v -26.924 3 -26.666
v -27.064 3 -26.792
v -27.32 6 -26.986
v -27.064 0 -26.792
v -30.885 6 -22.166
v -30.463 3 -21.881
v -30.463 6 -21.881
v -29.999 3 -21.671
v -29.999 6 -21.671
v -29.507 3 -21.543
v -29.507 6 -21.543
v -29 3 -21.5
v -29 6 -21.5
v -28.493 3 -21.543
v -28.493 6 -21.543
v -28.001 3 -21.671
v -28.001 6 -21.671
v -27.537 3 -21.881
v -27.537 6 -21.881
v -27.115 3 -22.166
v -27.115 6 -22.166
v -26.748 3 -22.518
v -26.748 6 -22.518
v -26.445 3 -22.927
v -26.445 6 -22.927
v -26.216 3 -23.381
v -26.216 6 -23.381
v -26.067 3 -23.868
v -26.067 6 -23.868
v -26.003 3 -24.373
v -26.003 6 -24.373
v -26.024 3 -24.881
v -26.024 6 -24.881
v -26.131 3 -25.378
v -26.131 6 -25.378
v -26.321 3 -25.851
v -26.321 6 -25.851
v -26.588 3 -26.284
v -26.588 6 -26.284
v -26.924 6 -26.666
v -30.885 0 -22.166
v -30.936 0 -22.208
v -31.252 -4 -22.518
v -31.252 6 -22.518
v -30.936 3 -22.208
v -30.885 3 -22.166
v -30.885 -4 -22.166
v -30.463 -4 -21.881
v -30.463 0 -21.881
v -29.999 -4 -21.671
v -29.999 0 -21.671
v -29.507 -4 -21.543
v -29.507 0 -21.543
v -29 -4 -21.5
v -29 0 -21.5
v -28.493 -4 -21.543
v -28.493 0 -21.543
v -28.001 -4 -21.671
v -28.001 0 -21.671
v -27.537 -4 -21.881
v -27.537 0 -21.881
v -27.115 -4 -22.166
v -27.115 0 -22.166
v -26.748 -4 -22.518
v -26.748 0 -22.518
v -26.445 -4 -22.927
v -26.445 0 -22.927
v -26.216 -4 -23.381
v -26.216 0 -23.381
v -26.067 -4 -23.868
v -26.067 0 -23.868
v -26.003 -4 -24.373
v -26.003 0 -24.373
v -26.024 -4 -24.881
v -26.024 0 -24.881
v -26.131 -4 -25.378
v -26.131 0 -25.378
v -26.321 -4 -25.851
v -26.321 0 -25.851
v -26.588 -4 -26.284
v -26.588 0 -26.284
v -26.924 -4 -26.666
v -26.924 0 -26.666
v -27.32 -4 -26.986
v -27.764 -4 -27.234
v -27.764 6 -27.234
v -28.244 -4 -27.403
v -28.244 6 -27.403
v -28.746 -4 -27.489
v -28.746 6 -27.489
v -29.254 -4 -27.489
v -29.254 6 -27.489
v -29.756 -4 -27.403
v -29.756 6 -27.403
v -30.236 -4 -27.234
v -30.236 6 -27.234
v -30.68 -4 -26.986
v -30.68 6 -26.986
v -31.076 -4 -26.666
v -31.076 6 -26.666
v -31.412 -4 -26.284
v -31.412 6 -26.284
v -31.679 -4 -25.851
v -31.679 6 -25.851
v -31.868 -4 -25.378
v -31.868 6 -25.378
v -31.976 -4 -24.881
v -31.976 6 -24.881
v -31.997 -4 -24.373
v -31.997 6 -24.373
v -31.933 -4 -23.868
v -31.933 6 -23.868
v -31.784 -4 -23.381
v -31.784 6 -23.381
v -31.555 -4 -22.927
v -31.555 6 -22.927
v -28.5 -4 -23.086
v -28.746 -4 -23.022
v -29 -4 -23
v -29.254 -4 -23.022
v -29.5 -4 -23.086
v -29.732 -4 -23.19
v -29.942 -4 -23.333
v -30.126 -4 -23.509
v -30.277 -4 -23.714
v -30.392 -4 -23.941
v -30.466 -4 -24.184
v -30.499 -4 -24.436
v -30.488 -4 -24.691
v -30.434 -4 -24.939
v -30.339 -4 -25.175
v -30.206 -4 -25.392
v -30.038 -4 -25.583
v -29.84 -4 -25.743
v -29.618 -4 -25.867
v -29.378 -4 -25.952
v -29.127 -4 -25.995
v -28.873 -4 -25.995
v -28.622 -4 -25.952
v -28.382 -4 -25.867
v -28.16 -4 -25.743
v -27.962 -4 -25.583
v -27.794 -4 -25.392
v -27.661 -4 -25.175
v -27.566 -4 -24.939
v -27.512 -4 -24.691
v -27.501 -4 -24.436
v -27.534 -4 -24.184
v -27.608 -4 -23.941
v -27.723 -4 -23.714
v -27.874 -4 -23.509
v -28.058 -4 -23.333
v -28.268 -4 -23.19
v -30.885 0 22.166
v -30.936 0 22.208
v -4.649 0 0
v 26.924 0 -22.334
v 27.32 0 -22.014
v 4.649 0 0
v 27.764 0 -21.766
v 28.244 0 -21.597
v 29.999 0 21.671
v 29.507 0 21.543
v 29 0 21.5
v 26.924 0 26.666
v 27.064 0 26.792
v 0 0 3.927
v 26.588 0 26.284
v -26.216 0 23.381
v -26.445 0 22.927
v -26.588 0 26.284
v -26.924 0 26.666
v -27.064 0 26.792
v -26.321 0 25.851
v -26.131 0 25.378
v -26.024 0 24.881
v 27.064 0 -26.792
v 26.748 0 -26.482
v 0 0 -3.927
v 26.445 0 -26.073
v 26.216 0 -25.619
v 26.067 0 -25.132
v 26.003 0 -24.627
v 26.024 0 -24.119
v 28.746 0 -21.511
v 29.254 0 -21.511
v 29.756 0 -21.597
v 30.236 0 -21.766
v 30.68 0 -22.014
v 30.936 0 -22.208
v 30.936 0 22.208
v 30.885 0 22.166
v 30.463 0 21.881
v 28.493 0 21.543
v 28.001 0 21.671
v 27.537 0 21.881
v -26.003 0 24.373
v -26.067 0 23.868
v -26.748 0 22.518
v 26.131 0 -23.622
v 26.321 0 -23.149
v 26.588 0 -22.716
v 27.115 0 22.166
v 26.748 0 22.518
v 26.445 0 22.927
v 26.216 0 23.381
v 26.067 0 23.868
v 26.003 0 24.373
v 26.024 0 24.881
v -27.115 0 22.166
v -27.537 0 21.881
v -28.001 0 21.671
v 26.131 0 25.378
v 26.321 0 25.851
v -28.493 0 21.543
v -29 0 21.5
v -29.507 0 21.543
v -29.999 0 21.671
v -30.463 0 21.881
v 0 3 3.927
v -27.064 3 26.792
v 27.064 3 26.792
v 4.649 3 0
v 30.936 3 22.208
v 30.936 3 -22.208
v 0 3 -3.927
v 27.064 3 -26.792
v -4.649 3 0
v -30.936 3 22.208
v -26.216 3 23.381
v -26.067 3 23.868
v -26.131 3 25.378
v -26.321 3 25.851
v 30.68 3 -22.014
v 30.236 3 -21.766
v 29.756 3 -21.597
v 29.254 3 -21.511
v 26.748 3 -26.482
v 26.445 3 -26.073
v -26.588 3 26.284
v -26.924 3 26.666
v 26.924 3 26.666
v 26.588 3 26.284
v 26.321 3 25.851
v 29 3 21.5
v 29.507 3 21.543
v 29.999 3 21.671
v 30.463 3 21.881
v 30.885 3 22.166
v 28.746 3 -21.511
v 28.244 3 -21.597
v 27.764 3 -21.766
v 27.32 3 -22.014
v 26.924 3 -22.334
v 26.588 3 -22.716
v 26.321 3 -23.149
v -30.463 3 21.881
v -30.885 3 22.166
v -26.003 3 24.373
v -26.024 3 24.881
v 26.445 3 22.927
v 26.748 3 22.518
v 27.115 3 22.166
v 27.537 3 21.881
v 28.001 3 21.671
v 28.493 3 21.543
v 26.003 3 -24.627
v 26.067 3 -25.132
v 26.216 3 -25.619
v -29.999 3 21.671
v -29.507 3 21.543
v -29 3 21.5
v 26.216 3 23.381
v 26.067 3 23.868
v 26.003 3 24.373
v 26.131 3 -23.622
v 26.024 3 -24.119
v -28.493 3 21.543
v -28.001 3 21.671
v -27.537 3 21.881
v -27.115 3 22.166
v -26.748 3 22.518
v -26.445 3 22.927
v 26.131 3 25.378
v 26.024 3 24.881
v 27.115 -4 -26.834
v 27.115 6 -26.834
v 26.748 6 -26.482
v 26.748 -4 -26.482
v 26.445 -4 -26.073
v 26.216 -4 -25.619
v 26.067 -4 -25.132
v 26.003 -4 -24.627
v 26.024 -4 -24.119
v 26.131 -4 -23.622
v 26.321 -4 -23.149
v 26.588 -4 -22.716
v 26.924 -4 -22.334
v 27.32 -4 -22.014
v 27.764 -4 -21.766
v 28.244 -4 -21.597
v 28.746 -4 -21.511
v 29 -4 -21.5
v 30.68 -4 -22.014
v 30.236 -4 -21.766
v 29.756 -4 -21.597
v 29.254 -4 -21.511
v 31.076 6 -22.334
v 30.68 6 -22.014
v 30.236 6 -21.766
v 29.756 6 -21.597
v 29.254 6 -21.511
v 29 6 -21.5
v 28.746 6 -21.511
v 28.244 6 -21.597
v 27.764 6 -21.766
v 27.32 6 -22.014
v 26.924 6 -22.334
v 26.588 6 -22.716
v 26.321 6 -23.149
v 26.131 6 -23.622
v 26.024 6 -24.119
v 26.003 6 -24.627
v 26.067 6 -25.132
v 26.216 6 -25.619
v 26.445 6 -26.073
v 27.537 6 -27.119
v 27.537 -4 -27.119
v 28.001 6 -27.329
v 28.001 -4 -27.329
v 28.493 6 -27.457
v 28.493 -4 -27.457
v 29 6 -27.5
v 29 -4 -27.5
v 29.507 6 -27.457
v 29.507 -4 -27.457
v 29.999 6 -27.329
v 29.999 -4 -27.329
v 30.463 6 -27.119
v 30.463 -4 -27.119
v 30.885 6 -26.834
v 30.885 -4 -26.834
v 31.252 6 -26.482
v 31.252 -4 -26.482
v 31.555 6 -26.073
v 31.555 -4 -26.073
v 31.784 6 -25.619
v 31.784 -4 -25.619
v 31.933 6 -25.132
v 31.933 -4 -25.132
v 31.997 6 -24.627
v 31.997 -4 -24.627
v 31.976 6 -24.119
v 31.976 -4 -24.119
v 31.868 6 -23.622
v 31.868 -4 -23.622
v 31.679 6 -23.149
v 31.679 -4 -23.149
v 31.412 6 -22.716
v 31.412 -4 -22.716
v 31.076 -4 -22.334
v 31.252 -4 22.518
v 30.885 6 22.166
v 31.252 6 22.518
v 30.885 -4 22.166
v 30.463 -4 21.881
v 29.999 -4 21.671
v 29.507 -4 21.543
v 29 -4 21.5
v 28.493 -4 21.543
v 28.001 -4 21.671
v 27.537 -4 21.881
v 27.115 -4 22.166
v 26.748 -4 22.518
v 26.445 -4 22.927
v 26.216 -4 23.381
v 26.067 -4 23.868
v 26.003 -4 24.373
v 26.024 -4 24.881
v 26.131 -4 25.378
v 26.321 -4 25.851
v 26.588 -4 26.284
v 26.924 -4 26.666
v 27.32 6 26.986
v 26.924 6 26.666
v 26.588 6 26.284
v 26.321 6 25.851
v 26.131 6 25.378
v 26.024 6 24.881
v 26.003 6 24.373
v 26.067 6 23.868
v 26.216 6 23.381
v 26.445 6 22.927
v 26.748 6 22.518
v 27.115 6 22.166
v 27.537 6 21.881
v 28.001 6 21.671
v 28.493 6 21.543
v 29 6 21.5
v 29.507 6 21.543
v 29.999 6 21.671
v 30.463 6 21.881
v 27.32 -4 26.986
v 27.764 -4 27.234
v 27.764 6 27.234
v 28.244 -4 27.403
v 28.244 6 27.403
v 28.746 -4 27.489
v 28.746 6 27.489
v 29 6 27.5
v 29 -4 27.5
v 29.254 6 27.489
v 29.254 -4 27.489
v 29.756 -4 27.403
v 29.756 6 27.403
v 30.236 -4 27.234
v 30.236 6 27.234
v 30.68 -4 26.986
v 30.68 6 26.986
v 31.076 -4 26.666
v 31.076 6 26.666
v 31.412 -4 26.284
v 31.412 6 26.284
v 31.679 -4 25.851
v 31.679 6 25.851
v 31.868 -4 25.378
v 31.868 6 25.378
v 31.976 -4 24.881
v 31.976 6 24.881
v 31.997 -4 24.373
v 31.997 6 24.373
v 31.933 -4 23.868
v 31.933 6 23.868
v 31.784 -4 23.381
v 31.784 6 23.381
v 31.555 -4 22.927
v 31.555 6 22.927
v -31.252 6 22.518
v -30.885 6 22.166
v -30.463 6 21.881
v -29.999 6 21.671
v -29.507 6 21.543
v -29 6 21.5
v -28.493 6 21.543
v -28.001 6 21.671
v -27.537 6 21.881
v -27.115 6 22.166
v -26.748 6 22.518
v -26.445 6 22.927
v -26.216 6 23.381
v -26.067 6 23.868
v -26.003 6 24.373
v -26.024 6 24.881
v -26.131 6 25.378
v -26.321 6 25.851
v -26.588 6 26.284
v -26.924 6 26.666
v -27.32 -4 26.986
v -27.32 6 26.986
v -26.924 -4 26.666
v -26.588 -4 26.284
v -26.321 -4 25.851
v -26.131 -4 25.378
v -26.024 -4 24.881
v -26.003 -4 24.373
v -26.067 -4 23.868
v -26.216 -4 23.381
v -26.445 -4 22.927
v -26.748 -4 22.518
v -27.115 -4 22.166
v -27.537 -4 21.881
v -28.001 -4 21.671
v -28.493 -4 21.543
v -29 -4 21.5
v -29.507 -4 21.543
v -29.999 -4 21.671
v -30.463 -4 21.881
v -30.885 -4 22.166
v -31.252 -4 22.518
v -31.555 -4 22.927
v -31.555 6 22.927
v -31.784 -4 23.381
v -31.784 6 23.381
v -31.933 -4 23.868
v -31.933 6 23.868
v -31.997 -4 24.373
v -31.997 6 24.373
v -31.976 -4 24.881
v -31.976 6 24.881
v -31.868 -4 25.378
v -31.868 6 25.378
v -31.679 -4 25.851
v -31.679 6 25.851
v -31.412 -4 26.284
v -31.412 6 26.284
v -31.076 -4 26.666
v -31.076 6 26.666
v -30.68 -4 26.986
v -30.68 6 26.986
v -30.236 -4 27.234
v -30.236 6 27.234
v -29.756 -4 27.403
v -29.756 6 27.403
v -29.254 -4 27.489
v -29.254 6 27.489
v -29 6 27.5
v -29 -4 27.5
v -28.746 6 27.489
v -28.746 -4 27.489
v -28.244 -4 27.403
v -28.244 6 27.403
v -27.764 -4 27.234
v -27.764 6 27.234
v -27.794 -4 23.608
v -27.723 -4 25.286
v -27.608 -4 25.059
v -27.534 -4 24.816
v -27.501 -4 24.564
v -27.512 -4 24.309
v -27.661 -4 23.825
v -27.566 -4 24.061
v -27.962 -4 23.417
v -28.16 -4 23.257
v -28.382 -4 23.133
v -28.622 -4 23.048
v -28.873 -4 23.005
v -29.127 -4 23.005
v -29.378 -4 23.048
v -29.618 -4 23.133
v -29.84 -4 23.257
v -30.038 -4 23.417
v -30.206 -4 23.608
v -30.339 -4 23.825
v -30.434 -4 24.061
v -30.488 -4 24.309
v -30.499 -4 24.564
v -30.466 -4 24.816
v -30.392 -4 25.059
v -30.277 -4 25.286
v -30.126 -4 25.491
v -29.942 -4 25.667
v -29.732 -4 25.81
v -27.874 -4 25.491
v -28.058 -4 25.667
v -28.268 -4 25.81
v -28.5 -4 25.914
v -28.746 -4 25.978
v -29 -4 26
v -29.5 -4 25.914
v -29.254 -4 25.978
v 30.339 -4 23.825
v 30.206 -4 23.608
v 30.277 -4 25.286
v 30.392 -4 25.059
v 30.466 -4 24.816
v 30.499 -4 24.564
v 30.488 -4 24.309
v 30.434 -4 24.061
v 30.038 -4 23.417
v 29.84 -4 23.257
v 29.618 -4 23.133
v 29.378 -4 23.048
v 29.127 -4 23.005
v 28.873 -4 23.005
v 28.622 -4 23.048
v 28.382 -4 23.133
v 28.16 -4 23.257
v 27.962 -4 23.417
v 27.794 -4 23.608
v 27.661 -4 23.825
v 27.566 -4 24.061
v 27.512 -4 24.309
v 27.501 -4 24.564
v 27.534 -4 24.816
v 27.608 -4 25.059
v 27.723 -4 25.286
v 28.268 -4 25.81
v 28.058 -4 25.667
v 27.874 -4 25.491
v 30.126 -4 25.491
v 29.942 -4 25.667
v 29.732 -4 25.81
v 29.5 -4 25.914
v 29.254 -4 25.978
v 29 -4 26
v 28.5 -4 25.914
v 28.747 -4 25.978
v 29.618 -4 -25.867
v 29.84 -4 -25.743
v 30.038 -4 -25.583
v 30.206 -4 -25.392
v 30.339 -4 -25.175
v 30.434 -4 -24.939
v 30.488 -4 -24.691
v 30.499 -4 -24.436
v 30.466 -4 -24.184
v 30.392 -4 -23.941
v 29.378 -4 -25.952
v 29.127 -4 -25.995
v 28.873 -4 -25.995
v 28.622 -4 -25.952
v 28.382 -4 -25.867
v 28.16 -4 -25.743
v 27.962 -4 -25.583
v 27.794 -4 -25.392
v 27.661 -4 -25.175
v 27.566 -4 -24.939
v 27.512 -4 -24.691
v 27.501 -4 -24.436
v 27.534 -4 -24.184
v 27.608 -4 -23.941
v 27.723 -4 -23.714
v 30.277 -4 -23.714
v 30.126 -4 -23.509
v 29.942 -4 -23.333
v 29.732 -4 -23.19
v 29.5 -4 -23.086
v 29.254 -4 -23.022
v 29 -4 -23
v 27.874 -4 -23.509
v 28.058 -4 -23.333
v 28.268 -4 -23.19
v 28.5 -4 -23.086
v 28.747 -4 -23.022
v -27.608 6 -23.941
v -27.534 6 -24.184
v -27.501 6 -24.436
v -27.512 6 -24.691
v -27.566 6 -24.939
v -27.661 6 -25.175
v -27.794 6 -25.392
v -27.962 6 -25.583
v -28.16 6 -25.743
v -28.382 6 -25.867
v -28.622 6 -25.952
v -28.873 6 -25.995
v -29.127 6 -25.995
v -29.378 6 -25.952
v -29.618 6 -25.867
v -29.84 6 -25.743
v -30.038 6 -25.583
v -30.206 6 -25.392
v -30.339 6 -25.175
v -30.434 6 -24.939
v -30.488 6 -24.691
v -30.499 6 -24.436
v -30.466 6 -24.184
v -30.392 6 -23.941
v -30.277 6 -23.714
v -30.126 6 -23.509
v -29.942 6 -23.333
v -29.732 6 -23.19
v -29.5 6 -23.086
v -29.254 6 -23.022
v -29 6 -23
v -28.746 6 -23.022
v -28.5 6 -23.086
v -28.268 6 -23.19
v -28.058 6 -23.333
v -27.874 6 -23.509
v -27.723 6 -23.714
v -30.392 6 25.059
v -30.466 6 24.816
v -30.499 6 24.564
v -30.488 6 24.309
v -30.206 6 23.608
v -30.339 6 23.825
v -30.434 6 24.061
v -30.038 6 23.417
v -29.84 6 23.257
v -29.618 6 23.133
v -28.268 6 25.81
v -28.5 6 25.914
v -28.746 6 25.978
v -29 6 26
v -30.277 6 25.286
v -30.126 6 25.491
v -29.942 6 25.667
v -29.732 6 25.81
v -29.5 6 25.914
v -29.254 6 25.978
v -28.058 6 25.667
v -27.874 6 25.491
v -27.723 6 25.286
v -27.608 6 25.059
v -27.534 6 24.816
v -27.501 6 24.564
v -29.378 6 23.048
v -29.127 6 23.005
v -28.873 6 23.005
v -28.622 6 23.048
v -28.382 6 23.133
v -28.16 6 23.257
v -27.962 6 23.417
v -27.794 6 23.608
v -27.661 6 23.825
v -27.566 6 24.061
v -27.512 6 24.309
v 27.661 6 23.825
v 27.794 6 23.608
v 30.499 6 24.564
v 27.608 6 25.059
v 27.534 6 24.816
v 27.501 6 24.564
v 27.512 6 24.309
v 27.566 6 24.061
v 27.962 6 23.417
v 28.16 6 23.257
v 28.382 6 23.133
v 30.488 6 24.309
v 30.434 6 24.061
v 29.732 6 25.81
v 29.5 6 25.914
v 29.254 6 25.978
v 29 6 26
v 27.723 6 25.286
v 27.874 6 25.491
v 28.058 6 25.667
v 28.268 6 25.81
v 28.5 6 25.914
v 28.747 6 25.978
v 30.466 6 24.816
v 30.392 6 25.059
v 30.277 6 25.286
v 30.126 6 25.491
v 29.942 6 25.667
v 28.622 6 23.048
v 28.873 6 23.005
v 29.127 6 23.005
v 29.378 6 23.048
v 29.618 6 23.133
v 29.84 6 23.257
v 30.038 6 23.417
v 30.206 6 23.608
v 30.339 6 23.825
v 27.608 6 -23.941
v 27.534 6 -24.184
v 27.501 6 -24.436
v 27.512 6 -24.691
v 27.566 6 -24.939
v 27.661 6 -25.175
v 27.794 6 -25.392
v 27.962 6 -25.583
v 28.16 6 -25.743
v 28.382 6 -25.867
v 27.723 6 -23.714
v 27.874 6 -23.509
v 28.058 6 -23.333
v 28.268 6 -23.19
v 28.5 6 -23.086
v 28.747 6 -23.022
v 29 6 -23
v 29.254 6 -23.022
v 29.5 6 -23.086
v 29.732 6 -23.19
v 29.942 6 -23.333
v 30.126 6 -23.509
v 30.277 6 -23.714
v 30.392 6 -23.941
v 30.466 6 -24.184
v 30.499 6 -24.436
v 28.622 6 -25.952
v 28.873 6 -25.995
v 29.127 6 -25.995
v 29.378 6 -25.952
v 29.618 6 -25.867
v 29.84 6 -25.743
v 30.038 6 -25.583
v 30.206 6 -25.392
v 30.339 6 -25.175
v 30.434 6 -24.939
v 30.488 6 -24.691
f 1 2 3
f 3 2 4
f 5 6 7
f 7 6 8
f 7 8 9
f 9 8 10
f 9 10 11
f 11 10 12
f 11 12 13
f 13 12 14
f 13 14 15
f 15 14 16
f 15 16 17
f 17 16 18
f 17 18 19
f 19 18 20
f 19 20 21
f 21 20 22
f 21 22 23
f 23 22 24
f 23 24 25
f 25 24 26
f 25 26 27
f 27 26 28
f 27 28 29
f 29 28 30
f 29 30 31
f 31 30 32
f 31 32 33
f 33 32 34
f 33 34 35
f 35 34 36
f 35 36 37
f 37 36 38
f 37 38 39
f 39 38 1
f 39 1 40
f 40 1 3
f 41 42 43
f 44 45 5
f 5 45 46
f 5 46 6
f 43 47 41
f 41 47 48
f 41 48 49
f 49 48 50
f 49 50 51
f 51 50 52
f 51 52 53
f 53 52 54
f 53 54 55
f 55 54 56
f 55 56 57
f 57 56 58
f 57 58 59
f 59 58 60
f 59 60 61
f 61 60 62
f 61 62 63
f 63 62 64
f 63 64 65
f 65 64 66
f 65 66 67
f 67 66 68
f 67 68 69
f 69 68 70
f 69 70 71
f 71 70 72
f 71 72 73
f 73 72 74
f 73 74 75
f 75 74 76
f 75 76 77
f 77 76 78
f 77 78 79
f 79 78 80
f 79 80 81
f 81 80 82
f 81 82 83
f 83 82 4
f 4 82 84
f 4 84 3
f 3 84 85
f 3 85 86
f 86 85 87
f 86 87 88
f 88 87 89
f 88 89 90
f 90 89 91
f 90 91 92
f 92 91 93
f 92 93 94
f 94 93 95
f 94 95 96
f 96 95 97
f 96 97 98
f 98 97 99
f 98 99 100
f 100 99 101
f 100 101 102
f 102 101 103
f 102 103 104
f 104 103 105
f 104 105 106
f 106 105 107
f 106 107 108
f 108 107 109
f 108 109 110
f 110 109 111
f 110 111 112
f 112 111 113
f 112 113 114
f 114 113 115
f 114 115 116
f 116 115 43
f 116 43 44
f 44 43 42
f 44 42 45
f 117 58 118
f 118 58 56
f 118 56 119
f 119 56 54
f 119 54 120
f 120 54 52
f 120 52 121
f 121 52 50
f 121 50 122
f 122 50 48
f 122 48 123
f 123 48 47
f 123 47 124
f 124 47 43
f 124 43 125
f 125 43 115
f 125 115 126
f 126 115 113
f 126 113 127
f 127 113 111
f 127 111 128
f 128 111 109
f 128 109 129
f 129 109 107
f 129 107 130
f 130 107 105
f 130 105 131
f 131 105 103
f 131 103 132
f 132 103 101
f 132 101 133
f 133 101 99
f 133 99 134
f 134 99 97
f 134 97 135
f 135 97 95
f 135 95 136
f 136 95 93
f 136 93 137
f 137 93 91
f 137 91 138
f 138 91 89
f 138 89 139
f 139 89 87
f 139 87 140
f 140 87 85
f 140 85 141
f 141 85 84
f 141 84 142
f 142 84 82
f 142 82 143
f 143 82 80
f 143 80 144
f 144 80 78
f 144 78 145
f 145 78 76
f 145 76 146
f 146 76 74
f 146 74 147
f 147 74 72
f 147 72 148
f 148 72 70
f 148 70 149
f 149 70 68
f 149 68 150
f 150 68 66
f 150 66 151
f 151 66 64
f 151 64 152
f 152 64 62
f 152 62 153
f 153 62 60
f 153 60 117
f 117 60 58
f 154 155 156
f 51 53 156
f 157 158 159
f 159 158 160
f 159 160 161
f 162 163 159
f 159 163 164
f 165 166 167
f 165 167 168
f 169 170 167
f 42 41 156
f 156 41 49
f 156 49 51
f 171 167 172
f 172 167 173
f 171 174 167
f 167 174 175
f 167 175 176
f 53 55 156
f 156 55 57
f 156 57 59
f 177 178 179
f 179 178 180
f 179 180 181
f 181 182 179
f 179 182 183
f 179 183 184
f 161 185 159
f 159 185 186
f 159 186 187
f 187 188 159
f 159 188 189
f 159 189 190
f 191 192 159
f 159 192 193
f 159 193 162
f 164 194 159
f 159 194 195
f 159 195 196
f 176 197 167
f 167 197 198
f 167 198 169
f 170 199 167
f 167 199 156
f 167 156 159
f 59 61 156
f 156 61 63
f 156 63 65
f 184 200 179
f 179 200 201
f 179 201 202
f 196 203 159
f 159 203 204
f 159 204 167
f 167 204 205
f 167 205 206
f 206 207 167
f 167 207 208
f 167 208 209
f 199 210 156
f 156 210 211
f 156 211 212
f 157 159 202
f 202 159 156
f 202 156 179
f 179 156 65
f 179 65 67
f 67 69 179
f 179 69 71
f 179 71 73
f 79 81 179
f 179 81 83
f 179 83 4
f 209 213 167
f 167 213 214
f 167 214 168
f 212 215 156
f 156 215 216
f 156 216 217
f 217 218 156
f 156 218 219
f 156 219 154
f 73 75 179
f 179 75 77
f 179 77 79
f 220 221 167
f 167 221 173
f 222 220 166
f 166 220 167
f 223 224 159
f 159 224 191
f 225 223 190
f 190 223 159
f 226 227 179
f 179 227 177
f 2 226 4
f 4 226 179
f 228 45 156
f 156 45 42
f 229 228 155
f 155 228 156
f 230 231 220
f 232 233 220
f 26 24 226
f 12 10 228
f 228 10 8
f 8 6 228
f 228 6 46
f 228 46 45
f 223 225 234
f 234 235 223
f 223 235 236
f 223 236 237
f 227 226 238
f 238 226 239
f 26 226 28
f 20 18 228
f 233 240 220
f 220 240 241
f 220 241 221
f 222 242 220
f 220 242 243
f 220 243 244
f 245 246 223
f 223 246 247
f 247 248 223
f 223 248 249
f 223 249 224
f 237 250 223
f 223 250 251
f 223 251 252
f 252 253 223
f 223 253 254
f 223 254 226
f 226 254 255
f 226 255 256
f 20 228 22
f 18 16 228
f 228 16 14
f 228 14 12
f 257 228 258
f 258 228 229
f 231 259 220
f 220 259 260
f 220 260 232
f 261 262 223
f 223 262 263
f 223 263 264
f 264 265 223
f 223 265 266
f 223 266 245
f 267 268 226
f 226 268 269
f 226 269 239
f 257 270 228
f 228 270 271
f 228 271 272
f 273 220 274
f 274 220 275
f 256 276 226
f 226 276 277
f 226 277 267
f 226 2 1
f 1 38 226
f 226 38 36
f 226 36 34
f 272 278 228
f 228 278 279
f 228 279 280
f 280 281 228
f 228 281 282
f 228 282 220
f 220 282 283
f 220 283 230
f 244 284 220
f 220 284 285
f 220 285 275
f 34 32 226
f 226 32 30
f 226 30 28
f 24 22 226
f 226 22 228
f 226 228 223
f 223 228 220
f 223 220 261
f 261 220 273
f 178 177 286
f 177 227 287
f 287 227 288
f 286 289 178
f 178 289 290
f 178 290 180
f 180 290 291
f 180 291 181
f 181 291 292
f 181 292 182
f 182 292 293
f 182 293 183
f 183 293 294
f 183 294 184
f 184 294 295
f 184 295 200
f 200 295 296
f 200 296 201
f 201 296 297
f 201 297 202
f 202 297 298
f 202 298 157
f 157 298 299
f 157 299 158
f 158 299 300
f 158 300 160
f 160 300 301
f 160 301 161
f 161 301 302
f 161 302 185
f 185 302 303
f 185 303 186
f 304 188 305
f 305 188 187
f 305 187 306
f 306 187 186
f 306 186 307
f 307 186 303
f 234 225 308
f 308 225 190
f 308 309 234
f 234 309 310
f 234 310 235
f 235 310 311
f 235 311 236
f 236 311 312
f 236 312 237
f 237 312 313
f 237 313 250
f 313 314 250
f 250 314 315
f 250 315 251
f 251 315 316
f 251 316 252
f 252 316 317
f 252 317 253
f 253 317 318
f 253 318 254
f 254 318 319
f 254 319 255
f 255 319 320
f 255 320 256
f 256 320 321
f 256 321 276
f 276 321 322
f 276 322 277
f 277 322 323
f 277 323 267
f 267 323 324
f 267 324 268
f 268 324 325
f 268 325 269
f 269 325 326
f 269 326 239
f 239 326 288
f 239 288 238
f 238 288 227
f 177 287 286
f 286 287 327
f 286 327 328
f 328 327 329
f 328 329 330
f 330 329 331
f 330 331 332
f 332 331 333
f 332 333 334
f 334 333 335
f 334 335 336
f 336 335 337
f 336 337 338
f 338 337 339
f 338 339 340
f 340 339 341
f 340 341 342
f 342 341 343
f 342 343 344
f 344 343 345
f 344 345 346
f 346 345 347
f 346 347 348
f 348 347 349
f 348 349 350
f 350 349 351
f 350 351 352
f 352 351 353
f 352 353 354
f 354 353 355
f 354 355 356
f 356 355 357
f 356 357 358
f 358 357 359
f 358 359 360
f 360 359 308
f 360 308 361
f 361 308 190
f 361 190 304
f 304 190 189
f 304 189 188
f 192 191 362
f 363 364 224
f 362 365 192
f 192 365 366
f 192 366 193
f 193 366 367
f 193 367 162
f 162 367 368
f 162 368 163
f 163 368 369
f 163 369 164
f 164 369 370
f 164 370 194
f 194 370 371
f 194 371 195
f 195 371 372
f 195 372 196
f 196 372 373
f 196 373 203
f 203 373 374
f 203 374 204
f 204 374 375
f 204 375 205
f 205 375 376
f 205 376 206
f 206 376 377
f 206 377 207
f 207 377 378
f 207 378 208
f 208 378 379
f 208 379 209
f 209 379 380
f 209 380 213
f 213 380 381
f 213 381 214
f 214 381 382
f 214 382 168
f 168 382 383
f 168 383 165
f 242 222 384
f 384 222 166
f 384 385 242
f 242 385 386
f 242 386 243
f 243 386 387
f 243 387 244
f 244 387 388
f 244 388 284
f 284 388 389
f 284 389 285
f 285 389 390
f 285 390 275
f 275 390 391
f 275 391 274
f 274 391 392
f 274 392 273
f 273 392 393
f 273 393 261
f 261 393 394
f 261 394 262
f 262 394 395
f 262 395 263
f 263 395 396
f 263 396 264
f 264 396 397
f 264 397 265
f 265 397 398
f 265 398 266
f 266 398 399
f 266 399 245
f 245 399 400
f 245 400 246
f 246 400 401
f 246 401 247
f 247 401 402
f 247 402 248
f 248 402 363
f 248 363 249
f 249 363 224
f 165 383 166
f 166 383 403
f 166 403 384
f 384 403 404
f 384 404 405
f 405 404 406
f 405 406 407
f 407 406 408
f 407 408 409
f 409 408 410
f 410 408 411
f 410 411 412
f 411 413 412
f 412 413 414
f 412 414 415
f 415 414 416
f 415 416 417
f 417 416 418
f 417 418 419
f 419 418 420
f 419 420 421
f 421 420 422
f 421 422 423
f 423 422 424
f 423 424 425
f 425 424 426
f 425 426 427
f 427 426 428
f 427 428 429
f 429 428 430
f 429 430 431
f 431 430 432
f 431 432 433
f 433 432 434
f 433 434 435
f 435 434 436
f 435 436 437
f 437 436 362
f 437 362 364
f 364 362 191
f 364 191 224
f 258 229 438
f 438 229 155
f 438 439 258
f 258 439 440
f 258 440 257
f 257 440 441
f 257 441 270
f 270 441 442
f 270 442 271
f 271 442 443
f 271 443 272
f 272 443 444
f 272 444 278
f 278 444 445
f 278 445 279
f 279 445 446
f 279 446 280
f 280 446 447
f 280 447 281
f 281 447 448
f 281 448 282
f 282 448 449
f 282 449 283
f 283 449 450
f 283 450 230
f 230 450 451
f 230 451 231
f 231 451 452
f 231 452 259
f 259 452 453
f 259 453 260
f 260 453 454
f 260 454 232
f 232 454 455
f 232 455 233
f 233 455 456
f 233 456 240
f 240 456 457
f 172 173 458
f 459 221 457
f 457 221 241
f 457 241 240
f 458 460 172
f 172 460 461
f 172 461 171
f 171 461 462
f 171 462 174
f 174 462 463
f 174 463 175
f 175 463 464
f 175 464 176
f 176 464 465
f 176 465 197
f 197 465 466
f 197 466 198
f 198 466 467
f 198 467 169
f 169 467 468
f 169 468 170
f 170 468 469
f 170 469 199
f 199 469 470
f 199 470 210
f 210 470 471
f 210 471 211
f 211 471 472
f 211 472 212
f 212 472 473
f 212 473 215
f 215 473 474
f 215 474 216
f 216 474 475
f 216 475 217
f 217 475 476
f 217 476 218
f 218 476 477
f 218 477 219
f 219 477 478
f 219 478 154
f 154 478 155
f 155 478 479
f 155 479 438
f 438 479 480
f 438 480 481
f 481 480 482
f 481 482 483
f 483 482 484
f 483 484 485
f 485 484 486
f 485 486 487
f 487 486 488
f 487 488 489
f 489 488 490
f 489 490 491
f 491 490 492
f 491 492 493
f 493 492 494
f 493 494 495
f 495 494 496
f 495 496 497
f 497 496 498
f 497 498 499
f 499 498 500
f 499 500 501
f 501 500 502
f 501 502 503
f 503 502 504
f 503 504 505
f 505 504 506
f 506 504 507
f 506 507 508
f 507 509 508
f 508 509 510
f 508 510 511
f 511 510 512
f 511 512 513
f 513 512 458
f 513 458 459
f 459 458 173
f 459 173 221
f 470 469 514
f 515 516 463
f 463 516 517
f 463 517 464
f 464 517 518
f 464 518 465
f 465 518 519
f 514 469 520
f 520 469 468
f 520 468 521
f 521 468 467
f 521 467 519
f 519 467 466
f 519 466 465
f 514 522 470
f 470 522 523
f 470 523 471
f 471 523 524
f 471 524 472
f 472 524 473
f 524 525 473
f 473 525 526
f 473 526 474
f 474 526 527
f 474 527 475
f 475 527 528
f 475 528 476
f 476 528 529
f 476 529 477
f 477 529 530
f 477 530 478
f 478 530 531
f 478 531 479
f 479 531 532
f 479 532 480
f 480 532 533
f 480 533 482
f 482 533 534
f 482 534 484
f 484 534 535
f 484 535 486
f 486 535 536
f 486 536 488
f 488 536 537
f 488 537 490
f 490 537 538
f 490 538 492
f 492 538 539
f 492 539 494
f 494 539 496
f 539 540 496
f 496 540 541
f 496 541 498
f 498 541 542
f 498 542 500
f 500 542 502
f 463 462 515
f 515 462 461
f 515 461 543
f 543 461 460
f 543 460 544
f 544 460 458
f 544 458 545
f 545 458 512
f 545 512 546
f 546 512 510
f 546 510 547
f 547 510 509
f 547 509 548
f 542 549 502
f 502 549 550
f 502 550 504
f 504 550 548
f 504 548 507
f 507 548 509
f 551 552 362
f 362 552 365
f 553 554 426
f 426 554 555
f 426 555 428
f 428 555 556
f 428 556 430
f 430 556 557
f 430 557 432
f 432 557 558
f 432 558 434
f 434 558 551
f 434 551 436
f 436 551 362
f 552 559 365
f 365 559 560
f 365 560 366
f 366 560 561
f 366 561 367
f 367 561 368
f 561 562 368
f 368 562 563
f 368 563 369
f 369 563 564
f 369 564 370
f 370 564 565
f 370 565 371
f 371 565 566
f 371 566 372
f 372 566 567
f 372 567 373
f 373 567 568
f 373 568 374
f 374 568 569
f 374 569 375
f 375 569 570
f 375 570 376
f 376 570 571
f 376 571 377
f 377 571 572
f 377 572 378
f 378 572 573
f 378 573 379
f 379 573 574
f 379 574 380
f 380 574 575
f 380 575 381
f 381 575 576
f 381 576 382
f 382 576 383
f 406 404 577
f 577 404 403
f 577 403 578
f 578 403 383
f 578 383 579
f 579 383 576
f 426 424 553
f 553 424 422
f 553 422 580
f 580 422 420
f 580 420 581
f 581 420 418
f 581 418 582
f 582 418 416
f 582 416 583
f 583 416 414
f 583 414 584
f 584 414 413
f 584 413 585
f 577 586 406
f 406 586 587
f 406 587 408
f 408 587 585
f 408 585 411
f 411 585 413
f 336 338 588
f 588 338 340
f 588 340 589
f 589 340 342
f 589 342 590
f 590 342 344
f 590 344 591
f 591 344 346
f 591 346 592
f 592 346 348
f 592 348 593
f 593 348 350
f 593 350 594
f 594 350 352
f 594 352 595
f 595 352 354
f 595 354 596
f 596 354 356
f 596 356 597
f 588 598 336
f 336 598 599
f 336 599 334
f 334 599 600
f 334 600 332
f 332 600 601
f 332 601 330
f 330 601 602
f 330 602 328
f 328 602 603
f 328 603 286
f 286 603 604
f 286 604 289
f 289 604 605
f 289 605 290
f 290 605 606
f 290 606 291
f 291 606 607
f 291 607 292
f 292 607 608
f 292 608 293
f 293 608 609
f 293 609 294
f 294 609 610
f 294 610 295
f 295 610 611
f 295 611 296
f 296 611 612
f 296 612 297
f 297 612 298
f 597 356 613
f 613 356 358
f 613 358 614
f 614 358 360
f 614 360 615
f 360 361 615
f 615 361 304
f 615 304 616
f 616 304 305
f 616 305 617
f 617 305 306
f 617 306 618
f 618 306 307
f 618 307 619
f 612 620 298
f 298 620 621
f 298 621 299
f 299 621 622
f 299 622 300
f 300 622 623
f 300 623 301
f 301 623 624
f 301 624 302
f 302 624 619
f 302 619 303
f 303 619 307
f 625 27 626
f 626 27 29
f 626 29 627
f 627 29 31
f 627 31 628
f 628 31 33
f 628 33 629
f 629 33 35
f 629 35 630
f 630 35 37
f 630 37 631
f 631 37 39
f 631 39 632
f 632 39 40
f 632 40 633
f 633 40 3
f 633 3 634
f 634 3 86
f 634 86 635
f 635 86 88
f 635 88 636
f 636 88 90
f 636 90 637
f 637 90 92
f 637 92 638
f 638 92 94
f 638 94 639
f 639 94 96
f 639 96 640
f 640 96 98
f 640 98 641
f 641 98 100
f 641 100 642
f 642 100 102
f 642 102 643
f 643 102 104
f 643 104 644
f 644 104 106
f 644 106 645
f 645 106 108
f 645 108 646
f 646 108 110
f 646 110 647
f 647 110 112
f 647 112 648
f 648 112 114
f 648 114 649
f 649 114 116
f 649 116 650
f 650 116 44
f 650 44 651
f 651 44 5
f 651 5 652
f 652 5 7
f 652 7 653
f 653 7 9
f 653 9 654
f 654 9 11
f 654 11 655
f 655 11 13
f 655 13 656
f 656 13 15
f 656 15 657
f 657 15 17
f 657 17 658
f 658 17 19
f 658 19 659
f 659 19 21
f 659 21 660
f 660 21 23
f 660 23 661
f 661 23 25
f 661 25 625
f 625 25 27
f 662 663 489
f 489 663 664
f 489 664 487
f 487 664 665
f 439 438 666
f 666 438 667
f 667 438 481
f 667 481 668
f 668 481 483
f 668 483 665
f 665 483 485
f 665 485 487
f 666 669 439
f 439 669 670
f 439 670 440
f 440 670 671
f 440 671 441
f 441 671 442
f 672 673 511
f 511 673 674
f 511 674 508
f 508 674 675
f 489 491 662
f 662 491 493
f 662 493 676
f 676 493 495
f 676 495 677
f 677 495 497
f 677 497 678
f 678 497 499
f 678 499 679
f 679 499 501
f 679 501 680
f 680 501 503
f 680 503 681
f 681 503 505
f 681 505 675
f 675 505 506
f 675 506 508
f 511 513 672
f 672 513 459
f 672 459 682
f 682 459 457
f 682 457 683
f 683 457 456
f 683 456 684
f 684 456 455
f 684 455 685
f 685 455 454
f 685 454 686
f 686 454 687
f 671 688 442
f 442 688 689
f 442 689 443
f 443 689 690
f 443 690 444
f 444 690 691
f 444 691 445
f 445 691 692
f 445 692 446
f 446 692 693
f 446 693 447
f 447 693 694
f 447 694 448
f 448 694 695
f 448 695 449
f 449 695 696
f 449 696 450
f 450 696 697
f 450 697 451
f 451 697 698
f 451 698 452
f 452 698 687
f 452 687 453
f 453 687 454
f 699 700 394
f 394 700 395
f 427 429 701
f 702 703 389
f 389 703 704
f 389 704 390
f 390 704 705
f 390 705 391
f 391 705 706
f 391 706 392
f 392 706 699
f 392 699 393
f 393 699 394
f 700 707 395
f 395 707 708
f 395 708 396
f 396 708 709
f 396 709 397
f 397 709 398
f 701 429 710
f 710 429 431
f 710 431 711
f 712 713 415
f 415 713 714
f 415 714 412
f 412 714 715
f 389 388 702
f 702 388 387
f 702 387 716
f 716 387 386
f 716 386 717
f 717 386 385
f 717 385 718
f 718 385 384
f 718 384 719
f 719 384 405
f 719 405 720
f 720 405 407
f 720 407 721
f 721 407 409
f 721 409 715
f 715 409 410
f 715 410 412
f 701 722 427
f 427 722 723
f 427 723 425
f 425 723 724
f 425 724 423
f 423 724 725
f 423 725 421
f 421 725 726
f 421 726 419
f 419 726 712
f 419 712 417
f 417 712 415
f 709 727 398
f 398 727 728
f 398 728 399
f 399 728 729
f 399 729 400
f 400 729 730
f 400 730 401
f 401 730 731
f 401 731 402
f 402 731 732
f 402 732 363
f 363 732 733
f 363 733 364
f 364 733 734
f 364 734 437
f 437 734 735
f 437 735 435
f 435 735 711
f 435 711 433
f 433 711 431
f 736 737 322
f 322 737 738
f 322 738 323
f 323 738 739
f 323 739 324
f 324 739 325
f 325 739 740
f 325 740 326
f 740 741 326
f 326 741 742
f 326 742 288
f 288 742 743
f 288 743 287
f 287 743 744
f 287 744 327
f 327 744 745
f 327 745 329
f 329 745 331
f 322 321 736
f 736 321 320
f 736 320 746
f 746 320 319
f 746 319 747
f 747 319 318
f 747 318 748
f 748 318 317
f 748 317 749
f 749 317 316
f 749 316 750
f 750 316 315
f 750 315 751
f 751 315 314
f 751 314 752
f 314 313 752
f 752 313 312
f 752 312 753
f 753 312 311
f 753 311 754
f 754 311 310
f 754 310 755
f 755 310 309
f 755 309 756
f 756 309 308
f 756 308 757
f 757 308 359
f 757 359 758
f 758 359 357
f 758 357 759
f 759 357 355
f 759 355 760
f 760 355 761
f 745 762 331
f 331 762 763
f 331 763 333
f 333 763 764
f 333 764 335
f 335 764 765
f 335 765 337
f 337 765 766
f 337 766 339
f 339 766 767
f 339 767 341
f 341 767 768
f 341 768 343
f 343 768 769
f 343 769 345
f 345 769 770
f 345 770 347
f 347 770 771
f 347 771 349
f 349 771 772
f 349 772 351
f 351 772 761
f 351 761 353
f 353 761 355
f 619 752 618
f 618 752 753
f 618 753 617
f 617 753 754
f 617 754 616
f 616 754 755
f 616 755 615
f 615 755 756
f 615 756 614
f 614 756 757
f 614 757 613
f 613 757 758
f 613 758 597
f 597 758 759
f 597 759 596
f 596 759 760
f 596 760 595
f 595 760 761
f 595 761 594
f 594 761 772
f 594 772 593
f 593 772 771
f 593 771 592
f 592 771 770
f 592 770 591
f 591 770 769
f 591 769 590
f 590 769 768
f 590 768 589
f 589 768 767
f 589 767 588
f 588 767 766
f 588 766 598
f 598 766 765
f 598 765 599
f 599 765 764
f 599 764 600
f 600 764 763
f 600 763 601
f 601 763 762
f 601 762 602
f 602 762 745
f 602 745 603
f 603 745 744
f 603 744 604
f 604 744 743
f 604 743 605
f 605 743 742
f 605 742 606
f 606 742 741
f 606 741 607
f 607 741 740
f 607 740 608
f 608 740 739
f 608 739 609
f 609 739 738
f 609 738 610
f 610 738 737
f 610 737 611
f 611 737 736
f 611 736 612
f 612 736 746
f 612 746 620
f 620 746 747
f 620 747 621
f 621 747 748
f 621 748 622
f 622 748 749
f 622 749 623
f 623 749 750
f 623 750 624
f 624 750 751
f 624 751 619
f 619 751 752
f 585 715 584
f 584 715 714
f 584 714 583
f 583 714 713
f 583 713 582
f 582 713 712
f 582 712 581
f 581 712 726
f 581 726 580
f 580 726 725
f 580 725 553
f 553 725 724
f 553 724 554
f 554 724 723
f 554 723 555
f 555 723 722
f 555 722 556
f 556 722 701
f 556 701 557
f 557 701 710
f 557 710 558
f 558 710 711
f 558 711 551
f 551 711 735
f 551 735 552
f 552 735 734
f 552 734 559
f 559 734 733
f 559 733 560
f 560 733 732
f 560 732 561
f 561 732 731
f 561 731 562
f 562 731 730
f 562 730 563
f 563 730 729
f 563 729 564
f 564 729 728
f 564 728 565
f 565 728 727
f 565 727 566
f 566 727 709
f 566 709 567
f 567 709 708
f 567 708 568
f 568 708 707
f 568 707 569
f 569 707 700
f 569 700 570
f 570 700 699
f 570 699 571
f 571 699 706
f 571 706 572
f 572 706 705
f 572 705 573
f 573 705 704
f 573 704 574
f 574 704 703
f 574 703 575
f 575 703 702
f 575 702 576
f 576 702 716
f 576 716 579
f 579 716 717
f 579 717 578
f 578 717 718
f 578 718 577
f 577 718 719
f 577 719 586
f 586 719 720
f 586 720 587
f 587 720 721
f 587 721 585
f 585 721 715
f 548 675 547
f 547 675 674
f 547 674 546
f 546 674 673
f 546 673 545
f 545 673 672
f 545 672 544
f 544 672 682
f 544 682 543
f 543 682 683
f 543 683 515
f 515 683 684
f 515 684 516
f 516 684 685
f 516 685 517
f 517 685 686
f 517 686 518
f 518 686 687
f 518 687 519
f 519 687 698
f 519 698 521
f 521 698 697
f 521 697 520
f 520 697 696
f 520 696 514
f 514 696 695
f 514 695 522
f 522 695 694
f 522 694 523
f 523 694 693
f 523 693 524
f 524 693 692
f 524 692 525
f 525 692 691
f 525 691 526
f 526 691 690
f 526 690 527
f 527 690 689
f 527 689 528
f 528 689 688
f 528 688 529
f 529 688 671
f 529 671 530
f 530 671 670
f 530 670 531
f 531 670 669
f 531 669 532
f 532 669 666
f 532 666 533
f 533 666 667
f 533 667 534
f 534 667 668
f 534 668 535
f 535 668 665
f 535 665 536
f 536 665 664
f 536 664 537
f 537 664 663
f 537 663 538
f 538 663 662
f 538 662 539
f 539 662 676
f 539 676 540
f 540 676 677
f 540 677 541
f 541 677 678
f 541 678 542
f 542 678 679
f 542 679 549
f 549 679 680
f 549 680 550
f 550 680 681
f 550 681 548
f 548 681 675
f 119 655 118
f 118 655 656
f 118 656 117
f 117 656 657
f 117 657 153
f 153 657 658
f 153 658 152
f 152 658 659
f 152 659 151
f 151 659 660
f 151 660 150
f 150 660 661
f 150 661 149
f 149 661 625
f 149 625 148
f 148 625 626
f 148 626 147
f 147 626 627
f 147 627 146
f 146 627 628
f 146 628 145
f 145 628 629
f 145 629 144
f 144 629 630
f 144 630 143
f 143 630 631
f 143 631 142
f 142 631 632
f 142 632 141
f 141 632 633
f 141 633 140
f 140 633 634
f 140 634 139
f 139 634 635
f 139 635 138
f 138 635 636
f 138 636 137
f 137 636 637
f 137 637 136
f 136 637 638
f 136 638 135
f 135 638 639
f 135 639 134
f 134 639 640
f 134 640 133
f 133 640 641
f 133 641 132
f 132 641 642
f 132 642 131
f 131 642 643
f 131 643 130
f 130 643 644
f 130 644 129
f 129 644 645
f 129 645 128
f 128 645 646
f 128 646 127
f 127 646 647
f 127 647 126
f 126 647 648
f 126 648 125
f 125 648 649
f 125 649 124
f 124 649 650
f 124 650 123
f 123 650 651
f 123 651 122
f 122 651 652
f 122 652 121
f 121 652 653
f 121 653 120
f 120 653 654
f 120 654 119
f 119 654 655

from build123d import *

# Parameters (mm, degrees)
CROQUIS1_R                = 3
SALIENTE_EXTRUIR1_DEPTH   = 4
SALIENTE_EXTRUIR1_2_DEPTH = 4
SALIENTE_EXTRUIR1_3_DEPTH = 4
SALIENTE_EXTRUIR1_4_DEPTH = 4
SALIENTE_EXTRUIR2_START   = 3
SALIENTE_EXTRUIR2_DEPTH   = 3
SALIENTE_EXTRUIR3_START   = 3
CROQUIS3_R                = 3
SALIENTE_EXTRUIR3_DEPTH   = 3
CROQUIS5_R                = 1.5
CORTAR_EXTRUIR1_DEPTH     = 13


with BuildPart() as part:
    # Croquis1 → Saliente-Extruir1 (new body)
    with BuildSketch(Plane(origin=(0, 0, 0), x_dir=(1, 0, 0), z_dir=(0, 1, 0))):
        with Locations(Location((-29, 24.5, 0), (0, 0, 270))):
            Circle(CROQUIS1_R)
    extrude(amount=-SALIENTE_EXTRUIR1_DEPTH)



with BuildPart() as body_2:
    # Croquis1 → Saliente-Extruir1 2 (new body)
    with BuildSketch(Plane(origin=(0, 0, 0), x_dir=(1, 0, 0), z_dir=(0, 1, 0))):
        with Locations(Location((-29, -24.5, 0), (0, 0, 270))):
            Circle(CROQUIS1_R)
    extrude(amount=-SALIENTE_EXTRUIR1_2_DEPTH)


with BuildPart() as body_3:
    # Croquis1 → Saliente-Extruir1 3 (new body)
    with BuildSketch(Plane(origin=(0, 0, 0), x_dir=(1, 0, 0), z_dir=(0, 1, 0))):
        with Locations(Location((29, -24.5, 0), (0, 0, 270))):
            Circle(CROQUIS1_R)
    extrude(amount=-SALIENTE_EXTRUIR1_3_DEPTH)


with BuildPart() as body_4:
    # Croquis1 → Saliente-Extruir1 4 (new body)
    with BuildSketch(Plane(origin=(0, 0, 0), x_dir=(1, 0, 0), z_dir=(0, 1, 0))):
        with Locations(Location((29, 24.5, 0), (0, 0, 270))):
            Circle(CROQUIS1_R)
    extrude(amount=-SALIENTE_EXTRUIR1_4_DEPTH)


with BuildPart() as part_1:
    add(part.part)

    add(body_2.part)  # Saliente-Extruir2 merges body 2

    add(body_3.part)  # Saliente-Extruir2 merges body 3

    add(body_4.part)  # Saliente-Extruir2 merges body 4
    # Croquis2 → Saliente-Extruir2 (add)
    with BuildSketch(Plane(origin=(0, 0, 0), x_dir=(1, 0, 0), z_dir=(0, 1, 0)).offset(SALIENTE_EXTRUIR2_START)):
        with BuildLine():
            Line((0, 3.927289505), (-27.063945052, 26.791656877))
            ThreePointArc((-27.063945052, 26.791656877), (-31.291656877, 26.436054948), (-30.936054948, 22.208343123))
            Line((-30.936054948, 22.208343123), (-4.648628393, 0))
            Line((-4.648628393, 0), (-30.936054948, -22.208343123))
            ThreePointArc((-30.936054948, -22.208343123), (-31.291656877, -26.436054948), (-27.063945052, -26.791656877))
            Line((-27.063945052, -26.791656877), (0, -3.927289505))
            Line((0, -3.927289505), (27.063945052, -26.791656877))
            ThreePointArc((27.063945052, -26.791656877), (31.291656877, -26.436054948), (30.936054948, -22.208343123))
            Line((30.936054948, -22.208343123), (4.648628393, 0))
            Line((4.648628393, 0), (30.936054948, 22.208343123))
            ThreePointArc((30.936054948, 22.208343123), (31.291656877, 26.436054948), (27.063945052, 26.791656877))
            Line((27.063945052, 26.791656877), (0, 3.927289505))
        make_face()
    extrude(amount=-SALIENTE_EXTRUIR2_DEPTH)

    # Croquis3 → Saliente-Extruir3 (add)
    with BuildSketch(Plane(origin=(0, 3, 0), x_dir=(1, 0, 0), z_dir=(0, 1, 0)).offset(SALIENTE_EXTRUIR3_START)):
        with Locations(Location((-29, 24.5, 0), (0, 0, 270))):
            Circle(CROQUIS3_R)
        with Locations(Location((-29, -24.5, 0), (0, 0, 270))):
            Circle(CROQUIS3_R)
        with Locations(Location((29, -24.5, 0), (0, 0, 270))):
            Circle(CROQUIS3_R)
        with Locations(Location((29, 24.5, 0), (0, 0, 270))):
            Circle(CROQUIS3_R)
    extrude(amount=-SALIENTE_EXTRUIR3_DEPTH)

    # Croquis5 → Cortar-Extruir1 (cut)
    with BuildSketch(Plane(origin=(0, 6, 0), x_dir=(1, 0, 0), z_dir=(0, 1, 0))):
        with Locations(Location((-29, 24.5, 0), (0, 0, 270))):
            Circle(CROQUIS5_R)
        with Locations(Location((29, 24.5, 0), (0, 0, 270))):
            Circle(CROQUIS5_R)
        with Locations(Location((29, -24.5, 0), (0, 0, 270))):
            Circle(CROQUIS5_R)
        with Locations(Location((-29, -24.5, 0), (0, 0, 270))):
            Circle(CROQUIS5_R)
    extrude(amount=-CORTAR_EXTRUIR1_DEPTH, mode=Mode.SUBTRACT)


solid = part_1.part
